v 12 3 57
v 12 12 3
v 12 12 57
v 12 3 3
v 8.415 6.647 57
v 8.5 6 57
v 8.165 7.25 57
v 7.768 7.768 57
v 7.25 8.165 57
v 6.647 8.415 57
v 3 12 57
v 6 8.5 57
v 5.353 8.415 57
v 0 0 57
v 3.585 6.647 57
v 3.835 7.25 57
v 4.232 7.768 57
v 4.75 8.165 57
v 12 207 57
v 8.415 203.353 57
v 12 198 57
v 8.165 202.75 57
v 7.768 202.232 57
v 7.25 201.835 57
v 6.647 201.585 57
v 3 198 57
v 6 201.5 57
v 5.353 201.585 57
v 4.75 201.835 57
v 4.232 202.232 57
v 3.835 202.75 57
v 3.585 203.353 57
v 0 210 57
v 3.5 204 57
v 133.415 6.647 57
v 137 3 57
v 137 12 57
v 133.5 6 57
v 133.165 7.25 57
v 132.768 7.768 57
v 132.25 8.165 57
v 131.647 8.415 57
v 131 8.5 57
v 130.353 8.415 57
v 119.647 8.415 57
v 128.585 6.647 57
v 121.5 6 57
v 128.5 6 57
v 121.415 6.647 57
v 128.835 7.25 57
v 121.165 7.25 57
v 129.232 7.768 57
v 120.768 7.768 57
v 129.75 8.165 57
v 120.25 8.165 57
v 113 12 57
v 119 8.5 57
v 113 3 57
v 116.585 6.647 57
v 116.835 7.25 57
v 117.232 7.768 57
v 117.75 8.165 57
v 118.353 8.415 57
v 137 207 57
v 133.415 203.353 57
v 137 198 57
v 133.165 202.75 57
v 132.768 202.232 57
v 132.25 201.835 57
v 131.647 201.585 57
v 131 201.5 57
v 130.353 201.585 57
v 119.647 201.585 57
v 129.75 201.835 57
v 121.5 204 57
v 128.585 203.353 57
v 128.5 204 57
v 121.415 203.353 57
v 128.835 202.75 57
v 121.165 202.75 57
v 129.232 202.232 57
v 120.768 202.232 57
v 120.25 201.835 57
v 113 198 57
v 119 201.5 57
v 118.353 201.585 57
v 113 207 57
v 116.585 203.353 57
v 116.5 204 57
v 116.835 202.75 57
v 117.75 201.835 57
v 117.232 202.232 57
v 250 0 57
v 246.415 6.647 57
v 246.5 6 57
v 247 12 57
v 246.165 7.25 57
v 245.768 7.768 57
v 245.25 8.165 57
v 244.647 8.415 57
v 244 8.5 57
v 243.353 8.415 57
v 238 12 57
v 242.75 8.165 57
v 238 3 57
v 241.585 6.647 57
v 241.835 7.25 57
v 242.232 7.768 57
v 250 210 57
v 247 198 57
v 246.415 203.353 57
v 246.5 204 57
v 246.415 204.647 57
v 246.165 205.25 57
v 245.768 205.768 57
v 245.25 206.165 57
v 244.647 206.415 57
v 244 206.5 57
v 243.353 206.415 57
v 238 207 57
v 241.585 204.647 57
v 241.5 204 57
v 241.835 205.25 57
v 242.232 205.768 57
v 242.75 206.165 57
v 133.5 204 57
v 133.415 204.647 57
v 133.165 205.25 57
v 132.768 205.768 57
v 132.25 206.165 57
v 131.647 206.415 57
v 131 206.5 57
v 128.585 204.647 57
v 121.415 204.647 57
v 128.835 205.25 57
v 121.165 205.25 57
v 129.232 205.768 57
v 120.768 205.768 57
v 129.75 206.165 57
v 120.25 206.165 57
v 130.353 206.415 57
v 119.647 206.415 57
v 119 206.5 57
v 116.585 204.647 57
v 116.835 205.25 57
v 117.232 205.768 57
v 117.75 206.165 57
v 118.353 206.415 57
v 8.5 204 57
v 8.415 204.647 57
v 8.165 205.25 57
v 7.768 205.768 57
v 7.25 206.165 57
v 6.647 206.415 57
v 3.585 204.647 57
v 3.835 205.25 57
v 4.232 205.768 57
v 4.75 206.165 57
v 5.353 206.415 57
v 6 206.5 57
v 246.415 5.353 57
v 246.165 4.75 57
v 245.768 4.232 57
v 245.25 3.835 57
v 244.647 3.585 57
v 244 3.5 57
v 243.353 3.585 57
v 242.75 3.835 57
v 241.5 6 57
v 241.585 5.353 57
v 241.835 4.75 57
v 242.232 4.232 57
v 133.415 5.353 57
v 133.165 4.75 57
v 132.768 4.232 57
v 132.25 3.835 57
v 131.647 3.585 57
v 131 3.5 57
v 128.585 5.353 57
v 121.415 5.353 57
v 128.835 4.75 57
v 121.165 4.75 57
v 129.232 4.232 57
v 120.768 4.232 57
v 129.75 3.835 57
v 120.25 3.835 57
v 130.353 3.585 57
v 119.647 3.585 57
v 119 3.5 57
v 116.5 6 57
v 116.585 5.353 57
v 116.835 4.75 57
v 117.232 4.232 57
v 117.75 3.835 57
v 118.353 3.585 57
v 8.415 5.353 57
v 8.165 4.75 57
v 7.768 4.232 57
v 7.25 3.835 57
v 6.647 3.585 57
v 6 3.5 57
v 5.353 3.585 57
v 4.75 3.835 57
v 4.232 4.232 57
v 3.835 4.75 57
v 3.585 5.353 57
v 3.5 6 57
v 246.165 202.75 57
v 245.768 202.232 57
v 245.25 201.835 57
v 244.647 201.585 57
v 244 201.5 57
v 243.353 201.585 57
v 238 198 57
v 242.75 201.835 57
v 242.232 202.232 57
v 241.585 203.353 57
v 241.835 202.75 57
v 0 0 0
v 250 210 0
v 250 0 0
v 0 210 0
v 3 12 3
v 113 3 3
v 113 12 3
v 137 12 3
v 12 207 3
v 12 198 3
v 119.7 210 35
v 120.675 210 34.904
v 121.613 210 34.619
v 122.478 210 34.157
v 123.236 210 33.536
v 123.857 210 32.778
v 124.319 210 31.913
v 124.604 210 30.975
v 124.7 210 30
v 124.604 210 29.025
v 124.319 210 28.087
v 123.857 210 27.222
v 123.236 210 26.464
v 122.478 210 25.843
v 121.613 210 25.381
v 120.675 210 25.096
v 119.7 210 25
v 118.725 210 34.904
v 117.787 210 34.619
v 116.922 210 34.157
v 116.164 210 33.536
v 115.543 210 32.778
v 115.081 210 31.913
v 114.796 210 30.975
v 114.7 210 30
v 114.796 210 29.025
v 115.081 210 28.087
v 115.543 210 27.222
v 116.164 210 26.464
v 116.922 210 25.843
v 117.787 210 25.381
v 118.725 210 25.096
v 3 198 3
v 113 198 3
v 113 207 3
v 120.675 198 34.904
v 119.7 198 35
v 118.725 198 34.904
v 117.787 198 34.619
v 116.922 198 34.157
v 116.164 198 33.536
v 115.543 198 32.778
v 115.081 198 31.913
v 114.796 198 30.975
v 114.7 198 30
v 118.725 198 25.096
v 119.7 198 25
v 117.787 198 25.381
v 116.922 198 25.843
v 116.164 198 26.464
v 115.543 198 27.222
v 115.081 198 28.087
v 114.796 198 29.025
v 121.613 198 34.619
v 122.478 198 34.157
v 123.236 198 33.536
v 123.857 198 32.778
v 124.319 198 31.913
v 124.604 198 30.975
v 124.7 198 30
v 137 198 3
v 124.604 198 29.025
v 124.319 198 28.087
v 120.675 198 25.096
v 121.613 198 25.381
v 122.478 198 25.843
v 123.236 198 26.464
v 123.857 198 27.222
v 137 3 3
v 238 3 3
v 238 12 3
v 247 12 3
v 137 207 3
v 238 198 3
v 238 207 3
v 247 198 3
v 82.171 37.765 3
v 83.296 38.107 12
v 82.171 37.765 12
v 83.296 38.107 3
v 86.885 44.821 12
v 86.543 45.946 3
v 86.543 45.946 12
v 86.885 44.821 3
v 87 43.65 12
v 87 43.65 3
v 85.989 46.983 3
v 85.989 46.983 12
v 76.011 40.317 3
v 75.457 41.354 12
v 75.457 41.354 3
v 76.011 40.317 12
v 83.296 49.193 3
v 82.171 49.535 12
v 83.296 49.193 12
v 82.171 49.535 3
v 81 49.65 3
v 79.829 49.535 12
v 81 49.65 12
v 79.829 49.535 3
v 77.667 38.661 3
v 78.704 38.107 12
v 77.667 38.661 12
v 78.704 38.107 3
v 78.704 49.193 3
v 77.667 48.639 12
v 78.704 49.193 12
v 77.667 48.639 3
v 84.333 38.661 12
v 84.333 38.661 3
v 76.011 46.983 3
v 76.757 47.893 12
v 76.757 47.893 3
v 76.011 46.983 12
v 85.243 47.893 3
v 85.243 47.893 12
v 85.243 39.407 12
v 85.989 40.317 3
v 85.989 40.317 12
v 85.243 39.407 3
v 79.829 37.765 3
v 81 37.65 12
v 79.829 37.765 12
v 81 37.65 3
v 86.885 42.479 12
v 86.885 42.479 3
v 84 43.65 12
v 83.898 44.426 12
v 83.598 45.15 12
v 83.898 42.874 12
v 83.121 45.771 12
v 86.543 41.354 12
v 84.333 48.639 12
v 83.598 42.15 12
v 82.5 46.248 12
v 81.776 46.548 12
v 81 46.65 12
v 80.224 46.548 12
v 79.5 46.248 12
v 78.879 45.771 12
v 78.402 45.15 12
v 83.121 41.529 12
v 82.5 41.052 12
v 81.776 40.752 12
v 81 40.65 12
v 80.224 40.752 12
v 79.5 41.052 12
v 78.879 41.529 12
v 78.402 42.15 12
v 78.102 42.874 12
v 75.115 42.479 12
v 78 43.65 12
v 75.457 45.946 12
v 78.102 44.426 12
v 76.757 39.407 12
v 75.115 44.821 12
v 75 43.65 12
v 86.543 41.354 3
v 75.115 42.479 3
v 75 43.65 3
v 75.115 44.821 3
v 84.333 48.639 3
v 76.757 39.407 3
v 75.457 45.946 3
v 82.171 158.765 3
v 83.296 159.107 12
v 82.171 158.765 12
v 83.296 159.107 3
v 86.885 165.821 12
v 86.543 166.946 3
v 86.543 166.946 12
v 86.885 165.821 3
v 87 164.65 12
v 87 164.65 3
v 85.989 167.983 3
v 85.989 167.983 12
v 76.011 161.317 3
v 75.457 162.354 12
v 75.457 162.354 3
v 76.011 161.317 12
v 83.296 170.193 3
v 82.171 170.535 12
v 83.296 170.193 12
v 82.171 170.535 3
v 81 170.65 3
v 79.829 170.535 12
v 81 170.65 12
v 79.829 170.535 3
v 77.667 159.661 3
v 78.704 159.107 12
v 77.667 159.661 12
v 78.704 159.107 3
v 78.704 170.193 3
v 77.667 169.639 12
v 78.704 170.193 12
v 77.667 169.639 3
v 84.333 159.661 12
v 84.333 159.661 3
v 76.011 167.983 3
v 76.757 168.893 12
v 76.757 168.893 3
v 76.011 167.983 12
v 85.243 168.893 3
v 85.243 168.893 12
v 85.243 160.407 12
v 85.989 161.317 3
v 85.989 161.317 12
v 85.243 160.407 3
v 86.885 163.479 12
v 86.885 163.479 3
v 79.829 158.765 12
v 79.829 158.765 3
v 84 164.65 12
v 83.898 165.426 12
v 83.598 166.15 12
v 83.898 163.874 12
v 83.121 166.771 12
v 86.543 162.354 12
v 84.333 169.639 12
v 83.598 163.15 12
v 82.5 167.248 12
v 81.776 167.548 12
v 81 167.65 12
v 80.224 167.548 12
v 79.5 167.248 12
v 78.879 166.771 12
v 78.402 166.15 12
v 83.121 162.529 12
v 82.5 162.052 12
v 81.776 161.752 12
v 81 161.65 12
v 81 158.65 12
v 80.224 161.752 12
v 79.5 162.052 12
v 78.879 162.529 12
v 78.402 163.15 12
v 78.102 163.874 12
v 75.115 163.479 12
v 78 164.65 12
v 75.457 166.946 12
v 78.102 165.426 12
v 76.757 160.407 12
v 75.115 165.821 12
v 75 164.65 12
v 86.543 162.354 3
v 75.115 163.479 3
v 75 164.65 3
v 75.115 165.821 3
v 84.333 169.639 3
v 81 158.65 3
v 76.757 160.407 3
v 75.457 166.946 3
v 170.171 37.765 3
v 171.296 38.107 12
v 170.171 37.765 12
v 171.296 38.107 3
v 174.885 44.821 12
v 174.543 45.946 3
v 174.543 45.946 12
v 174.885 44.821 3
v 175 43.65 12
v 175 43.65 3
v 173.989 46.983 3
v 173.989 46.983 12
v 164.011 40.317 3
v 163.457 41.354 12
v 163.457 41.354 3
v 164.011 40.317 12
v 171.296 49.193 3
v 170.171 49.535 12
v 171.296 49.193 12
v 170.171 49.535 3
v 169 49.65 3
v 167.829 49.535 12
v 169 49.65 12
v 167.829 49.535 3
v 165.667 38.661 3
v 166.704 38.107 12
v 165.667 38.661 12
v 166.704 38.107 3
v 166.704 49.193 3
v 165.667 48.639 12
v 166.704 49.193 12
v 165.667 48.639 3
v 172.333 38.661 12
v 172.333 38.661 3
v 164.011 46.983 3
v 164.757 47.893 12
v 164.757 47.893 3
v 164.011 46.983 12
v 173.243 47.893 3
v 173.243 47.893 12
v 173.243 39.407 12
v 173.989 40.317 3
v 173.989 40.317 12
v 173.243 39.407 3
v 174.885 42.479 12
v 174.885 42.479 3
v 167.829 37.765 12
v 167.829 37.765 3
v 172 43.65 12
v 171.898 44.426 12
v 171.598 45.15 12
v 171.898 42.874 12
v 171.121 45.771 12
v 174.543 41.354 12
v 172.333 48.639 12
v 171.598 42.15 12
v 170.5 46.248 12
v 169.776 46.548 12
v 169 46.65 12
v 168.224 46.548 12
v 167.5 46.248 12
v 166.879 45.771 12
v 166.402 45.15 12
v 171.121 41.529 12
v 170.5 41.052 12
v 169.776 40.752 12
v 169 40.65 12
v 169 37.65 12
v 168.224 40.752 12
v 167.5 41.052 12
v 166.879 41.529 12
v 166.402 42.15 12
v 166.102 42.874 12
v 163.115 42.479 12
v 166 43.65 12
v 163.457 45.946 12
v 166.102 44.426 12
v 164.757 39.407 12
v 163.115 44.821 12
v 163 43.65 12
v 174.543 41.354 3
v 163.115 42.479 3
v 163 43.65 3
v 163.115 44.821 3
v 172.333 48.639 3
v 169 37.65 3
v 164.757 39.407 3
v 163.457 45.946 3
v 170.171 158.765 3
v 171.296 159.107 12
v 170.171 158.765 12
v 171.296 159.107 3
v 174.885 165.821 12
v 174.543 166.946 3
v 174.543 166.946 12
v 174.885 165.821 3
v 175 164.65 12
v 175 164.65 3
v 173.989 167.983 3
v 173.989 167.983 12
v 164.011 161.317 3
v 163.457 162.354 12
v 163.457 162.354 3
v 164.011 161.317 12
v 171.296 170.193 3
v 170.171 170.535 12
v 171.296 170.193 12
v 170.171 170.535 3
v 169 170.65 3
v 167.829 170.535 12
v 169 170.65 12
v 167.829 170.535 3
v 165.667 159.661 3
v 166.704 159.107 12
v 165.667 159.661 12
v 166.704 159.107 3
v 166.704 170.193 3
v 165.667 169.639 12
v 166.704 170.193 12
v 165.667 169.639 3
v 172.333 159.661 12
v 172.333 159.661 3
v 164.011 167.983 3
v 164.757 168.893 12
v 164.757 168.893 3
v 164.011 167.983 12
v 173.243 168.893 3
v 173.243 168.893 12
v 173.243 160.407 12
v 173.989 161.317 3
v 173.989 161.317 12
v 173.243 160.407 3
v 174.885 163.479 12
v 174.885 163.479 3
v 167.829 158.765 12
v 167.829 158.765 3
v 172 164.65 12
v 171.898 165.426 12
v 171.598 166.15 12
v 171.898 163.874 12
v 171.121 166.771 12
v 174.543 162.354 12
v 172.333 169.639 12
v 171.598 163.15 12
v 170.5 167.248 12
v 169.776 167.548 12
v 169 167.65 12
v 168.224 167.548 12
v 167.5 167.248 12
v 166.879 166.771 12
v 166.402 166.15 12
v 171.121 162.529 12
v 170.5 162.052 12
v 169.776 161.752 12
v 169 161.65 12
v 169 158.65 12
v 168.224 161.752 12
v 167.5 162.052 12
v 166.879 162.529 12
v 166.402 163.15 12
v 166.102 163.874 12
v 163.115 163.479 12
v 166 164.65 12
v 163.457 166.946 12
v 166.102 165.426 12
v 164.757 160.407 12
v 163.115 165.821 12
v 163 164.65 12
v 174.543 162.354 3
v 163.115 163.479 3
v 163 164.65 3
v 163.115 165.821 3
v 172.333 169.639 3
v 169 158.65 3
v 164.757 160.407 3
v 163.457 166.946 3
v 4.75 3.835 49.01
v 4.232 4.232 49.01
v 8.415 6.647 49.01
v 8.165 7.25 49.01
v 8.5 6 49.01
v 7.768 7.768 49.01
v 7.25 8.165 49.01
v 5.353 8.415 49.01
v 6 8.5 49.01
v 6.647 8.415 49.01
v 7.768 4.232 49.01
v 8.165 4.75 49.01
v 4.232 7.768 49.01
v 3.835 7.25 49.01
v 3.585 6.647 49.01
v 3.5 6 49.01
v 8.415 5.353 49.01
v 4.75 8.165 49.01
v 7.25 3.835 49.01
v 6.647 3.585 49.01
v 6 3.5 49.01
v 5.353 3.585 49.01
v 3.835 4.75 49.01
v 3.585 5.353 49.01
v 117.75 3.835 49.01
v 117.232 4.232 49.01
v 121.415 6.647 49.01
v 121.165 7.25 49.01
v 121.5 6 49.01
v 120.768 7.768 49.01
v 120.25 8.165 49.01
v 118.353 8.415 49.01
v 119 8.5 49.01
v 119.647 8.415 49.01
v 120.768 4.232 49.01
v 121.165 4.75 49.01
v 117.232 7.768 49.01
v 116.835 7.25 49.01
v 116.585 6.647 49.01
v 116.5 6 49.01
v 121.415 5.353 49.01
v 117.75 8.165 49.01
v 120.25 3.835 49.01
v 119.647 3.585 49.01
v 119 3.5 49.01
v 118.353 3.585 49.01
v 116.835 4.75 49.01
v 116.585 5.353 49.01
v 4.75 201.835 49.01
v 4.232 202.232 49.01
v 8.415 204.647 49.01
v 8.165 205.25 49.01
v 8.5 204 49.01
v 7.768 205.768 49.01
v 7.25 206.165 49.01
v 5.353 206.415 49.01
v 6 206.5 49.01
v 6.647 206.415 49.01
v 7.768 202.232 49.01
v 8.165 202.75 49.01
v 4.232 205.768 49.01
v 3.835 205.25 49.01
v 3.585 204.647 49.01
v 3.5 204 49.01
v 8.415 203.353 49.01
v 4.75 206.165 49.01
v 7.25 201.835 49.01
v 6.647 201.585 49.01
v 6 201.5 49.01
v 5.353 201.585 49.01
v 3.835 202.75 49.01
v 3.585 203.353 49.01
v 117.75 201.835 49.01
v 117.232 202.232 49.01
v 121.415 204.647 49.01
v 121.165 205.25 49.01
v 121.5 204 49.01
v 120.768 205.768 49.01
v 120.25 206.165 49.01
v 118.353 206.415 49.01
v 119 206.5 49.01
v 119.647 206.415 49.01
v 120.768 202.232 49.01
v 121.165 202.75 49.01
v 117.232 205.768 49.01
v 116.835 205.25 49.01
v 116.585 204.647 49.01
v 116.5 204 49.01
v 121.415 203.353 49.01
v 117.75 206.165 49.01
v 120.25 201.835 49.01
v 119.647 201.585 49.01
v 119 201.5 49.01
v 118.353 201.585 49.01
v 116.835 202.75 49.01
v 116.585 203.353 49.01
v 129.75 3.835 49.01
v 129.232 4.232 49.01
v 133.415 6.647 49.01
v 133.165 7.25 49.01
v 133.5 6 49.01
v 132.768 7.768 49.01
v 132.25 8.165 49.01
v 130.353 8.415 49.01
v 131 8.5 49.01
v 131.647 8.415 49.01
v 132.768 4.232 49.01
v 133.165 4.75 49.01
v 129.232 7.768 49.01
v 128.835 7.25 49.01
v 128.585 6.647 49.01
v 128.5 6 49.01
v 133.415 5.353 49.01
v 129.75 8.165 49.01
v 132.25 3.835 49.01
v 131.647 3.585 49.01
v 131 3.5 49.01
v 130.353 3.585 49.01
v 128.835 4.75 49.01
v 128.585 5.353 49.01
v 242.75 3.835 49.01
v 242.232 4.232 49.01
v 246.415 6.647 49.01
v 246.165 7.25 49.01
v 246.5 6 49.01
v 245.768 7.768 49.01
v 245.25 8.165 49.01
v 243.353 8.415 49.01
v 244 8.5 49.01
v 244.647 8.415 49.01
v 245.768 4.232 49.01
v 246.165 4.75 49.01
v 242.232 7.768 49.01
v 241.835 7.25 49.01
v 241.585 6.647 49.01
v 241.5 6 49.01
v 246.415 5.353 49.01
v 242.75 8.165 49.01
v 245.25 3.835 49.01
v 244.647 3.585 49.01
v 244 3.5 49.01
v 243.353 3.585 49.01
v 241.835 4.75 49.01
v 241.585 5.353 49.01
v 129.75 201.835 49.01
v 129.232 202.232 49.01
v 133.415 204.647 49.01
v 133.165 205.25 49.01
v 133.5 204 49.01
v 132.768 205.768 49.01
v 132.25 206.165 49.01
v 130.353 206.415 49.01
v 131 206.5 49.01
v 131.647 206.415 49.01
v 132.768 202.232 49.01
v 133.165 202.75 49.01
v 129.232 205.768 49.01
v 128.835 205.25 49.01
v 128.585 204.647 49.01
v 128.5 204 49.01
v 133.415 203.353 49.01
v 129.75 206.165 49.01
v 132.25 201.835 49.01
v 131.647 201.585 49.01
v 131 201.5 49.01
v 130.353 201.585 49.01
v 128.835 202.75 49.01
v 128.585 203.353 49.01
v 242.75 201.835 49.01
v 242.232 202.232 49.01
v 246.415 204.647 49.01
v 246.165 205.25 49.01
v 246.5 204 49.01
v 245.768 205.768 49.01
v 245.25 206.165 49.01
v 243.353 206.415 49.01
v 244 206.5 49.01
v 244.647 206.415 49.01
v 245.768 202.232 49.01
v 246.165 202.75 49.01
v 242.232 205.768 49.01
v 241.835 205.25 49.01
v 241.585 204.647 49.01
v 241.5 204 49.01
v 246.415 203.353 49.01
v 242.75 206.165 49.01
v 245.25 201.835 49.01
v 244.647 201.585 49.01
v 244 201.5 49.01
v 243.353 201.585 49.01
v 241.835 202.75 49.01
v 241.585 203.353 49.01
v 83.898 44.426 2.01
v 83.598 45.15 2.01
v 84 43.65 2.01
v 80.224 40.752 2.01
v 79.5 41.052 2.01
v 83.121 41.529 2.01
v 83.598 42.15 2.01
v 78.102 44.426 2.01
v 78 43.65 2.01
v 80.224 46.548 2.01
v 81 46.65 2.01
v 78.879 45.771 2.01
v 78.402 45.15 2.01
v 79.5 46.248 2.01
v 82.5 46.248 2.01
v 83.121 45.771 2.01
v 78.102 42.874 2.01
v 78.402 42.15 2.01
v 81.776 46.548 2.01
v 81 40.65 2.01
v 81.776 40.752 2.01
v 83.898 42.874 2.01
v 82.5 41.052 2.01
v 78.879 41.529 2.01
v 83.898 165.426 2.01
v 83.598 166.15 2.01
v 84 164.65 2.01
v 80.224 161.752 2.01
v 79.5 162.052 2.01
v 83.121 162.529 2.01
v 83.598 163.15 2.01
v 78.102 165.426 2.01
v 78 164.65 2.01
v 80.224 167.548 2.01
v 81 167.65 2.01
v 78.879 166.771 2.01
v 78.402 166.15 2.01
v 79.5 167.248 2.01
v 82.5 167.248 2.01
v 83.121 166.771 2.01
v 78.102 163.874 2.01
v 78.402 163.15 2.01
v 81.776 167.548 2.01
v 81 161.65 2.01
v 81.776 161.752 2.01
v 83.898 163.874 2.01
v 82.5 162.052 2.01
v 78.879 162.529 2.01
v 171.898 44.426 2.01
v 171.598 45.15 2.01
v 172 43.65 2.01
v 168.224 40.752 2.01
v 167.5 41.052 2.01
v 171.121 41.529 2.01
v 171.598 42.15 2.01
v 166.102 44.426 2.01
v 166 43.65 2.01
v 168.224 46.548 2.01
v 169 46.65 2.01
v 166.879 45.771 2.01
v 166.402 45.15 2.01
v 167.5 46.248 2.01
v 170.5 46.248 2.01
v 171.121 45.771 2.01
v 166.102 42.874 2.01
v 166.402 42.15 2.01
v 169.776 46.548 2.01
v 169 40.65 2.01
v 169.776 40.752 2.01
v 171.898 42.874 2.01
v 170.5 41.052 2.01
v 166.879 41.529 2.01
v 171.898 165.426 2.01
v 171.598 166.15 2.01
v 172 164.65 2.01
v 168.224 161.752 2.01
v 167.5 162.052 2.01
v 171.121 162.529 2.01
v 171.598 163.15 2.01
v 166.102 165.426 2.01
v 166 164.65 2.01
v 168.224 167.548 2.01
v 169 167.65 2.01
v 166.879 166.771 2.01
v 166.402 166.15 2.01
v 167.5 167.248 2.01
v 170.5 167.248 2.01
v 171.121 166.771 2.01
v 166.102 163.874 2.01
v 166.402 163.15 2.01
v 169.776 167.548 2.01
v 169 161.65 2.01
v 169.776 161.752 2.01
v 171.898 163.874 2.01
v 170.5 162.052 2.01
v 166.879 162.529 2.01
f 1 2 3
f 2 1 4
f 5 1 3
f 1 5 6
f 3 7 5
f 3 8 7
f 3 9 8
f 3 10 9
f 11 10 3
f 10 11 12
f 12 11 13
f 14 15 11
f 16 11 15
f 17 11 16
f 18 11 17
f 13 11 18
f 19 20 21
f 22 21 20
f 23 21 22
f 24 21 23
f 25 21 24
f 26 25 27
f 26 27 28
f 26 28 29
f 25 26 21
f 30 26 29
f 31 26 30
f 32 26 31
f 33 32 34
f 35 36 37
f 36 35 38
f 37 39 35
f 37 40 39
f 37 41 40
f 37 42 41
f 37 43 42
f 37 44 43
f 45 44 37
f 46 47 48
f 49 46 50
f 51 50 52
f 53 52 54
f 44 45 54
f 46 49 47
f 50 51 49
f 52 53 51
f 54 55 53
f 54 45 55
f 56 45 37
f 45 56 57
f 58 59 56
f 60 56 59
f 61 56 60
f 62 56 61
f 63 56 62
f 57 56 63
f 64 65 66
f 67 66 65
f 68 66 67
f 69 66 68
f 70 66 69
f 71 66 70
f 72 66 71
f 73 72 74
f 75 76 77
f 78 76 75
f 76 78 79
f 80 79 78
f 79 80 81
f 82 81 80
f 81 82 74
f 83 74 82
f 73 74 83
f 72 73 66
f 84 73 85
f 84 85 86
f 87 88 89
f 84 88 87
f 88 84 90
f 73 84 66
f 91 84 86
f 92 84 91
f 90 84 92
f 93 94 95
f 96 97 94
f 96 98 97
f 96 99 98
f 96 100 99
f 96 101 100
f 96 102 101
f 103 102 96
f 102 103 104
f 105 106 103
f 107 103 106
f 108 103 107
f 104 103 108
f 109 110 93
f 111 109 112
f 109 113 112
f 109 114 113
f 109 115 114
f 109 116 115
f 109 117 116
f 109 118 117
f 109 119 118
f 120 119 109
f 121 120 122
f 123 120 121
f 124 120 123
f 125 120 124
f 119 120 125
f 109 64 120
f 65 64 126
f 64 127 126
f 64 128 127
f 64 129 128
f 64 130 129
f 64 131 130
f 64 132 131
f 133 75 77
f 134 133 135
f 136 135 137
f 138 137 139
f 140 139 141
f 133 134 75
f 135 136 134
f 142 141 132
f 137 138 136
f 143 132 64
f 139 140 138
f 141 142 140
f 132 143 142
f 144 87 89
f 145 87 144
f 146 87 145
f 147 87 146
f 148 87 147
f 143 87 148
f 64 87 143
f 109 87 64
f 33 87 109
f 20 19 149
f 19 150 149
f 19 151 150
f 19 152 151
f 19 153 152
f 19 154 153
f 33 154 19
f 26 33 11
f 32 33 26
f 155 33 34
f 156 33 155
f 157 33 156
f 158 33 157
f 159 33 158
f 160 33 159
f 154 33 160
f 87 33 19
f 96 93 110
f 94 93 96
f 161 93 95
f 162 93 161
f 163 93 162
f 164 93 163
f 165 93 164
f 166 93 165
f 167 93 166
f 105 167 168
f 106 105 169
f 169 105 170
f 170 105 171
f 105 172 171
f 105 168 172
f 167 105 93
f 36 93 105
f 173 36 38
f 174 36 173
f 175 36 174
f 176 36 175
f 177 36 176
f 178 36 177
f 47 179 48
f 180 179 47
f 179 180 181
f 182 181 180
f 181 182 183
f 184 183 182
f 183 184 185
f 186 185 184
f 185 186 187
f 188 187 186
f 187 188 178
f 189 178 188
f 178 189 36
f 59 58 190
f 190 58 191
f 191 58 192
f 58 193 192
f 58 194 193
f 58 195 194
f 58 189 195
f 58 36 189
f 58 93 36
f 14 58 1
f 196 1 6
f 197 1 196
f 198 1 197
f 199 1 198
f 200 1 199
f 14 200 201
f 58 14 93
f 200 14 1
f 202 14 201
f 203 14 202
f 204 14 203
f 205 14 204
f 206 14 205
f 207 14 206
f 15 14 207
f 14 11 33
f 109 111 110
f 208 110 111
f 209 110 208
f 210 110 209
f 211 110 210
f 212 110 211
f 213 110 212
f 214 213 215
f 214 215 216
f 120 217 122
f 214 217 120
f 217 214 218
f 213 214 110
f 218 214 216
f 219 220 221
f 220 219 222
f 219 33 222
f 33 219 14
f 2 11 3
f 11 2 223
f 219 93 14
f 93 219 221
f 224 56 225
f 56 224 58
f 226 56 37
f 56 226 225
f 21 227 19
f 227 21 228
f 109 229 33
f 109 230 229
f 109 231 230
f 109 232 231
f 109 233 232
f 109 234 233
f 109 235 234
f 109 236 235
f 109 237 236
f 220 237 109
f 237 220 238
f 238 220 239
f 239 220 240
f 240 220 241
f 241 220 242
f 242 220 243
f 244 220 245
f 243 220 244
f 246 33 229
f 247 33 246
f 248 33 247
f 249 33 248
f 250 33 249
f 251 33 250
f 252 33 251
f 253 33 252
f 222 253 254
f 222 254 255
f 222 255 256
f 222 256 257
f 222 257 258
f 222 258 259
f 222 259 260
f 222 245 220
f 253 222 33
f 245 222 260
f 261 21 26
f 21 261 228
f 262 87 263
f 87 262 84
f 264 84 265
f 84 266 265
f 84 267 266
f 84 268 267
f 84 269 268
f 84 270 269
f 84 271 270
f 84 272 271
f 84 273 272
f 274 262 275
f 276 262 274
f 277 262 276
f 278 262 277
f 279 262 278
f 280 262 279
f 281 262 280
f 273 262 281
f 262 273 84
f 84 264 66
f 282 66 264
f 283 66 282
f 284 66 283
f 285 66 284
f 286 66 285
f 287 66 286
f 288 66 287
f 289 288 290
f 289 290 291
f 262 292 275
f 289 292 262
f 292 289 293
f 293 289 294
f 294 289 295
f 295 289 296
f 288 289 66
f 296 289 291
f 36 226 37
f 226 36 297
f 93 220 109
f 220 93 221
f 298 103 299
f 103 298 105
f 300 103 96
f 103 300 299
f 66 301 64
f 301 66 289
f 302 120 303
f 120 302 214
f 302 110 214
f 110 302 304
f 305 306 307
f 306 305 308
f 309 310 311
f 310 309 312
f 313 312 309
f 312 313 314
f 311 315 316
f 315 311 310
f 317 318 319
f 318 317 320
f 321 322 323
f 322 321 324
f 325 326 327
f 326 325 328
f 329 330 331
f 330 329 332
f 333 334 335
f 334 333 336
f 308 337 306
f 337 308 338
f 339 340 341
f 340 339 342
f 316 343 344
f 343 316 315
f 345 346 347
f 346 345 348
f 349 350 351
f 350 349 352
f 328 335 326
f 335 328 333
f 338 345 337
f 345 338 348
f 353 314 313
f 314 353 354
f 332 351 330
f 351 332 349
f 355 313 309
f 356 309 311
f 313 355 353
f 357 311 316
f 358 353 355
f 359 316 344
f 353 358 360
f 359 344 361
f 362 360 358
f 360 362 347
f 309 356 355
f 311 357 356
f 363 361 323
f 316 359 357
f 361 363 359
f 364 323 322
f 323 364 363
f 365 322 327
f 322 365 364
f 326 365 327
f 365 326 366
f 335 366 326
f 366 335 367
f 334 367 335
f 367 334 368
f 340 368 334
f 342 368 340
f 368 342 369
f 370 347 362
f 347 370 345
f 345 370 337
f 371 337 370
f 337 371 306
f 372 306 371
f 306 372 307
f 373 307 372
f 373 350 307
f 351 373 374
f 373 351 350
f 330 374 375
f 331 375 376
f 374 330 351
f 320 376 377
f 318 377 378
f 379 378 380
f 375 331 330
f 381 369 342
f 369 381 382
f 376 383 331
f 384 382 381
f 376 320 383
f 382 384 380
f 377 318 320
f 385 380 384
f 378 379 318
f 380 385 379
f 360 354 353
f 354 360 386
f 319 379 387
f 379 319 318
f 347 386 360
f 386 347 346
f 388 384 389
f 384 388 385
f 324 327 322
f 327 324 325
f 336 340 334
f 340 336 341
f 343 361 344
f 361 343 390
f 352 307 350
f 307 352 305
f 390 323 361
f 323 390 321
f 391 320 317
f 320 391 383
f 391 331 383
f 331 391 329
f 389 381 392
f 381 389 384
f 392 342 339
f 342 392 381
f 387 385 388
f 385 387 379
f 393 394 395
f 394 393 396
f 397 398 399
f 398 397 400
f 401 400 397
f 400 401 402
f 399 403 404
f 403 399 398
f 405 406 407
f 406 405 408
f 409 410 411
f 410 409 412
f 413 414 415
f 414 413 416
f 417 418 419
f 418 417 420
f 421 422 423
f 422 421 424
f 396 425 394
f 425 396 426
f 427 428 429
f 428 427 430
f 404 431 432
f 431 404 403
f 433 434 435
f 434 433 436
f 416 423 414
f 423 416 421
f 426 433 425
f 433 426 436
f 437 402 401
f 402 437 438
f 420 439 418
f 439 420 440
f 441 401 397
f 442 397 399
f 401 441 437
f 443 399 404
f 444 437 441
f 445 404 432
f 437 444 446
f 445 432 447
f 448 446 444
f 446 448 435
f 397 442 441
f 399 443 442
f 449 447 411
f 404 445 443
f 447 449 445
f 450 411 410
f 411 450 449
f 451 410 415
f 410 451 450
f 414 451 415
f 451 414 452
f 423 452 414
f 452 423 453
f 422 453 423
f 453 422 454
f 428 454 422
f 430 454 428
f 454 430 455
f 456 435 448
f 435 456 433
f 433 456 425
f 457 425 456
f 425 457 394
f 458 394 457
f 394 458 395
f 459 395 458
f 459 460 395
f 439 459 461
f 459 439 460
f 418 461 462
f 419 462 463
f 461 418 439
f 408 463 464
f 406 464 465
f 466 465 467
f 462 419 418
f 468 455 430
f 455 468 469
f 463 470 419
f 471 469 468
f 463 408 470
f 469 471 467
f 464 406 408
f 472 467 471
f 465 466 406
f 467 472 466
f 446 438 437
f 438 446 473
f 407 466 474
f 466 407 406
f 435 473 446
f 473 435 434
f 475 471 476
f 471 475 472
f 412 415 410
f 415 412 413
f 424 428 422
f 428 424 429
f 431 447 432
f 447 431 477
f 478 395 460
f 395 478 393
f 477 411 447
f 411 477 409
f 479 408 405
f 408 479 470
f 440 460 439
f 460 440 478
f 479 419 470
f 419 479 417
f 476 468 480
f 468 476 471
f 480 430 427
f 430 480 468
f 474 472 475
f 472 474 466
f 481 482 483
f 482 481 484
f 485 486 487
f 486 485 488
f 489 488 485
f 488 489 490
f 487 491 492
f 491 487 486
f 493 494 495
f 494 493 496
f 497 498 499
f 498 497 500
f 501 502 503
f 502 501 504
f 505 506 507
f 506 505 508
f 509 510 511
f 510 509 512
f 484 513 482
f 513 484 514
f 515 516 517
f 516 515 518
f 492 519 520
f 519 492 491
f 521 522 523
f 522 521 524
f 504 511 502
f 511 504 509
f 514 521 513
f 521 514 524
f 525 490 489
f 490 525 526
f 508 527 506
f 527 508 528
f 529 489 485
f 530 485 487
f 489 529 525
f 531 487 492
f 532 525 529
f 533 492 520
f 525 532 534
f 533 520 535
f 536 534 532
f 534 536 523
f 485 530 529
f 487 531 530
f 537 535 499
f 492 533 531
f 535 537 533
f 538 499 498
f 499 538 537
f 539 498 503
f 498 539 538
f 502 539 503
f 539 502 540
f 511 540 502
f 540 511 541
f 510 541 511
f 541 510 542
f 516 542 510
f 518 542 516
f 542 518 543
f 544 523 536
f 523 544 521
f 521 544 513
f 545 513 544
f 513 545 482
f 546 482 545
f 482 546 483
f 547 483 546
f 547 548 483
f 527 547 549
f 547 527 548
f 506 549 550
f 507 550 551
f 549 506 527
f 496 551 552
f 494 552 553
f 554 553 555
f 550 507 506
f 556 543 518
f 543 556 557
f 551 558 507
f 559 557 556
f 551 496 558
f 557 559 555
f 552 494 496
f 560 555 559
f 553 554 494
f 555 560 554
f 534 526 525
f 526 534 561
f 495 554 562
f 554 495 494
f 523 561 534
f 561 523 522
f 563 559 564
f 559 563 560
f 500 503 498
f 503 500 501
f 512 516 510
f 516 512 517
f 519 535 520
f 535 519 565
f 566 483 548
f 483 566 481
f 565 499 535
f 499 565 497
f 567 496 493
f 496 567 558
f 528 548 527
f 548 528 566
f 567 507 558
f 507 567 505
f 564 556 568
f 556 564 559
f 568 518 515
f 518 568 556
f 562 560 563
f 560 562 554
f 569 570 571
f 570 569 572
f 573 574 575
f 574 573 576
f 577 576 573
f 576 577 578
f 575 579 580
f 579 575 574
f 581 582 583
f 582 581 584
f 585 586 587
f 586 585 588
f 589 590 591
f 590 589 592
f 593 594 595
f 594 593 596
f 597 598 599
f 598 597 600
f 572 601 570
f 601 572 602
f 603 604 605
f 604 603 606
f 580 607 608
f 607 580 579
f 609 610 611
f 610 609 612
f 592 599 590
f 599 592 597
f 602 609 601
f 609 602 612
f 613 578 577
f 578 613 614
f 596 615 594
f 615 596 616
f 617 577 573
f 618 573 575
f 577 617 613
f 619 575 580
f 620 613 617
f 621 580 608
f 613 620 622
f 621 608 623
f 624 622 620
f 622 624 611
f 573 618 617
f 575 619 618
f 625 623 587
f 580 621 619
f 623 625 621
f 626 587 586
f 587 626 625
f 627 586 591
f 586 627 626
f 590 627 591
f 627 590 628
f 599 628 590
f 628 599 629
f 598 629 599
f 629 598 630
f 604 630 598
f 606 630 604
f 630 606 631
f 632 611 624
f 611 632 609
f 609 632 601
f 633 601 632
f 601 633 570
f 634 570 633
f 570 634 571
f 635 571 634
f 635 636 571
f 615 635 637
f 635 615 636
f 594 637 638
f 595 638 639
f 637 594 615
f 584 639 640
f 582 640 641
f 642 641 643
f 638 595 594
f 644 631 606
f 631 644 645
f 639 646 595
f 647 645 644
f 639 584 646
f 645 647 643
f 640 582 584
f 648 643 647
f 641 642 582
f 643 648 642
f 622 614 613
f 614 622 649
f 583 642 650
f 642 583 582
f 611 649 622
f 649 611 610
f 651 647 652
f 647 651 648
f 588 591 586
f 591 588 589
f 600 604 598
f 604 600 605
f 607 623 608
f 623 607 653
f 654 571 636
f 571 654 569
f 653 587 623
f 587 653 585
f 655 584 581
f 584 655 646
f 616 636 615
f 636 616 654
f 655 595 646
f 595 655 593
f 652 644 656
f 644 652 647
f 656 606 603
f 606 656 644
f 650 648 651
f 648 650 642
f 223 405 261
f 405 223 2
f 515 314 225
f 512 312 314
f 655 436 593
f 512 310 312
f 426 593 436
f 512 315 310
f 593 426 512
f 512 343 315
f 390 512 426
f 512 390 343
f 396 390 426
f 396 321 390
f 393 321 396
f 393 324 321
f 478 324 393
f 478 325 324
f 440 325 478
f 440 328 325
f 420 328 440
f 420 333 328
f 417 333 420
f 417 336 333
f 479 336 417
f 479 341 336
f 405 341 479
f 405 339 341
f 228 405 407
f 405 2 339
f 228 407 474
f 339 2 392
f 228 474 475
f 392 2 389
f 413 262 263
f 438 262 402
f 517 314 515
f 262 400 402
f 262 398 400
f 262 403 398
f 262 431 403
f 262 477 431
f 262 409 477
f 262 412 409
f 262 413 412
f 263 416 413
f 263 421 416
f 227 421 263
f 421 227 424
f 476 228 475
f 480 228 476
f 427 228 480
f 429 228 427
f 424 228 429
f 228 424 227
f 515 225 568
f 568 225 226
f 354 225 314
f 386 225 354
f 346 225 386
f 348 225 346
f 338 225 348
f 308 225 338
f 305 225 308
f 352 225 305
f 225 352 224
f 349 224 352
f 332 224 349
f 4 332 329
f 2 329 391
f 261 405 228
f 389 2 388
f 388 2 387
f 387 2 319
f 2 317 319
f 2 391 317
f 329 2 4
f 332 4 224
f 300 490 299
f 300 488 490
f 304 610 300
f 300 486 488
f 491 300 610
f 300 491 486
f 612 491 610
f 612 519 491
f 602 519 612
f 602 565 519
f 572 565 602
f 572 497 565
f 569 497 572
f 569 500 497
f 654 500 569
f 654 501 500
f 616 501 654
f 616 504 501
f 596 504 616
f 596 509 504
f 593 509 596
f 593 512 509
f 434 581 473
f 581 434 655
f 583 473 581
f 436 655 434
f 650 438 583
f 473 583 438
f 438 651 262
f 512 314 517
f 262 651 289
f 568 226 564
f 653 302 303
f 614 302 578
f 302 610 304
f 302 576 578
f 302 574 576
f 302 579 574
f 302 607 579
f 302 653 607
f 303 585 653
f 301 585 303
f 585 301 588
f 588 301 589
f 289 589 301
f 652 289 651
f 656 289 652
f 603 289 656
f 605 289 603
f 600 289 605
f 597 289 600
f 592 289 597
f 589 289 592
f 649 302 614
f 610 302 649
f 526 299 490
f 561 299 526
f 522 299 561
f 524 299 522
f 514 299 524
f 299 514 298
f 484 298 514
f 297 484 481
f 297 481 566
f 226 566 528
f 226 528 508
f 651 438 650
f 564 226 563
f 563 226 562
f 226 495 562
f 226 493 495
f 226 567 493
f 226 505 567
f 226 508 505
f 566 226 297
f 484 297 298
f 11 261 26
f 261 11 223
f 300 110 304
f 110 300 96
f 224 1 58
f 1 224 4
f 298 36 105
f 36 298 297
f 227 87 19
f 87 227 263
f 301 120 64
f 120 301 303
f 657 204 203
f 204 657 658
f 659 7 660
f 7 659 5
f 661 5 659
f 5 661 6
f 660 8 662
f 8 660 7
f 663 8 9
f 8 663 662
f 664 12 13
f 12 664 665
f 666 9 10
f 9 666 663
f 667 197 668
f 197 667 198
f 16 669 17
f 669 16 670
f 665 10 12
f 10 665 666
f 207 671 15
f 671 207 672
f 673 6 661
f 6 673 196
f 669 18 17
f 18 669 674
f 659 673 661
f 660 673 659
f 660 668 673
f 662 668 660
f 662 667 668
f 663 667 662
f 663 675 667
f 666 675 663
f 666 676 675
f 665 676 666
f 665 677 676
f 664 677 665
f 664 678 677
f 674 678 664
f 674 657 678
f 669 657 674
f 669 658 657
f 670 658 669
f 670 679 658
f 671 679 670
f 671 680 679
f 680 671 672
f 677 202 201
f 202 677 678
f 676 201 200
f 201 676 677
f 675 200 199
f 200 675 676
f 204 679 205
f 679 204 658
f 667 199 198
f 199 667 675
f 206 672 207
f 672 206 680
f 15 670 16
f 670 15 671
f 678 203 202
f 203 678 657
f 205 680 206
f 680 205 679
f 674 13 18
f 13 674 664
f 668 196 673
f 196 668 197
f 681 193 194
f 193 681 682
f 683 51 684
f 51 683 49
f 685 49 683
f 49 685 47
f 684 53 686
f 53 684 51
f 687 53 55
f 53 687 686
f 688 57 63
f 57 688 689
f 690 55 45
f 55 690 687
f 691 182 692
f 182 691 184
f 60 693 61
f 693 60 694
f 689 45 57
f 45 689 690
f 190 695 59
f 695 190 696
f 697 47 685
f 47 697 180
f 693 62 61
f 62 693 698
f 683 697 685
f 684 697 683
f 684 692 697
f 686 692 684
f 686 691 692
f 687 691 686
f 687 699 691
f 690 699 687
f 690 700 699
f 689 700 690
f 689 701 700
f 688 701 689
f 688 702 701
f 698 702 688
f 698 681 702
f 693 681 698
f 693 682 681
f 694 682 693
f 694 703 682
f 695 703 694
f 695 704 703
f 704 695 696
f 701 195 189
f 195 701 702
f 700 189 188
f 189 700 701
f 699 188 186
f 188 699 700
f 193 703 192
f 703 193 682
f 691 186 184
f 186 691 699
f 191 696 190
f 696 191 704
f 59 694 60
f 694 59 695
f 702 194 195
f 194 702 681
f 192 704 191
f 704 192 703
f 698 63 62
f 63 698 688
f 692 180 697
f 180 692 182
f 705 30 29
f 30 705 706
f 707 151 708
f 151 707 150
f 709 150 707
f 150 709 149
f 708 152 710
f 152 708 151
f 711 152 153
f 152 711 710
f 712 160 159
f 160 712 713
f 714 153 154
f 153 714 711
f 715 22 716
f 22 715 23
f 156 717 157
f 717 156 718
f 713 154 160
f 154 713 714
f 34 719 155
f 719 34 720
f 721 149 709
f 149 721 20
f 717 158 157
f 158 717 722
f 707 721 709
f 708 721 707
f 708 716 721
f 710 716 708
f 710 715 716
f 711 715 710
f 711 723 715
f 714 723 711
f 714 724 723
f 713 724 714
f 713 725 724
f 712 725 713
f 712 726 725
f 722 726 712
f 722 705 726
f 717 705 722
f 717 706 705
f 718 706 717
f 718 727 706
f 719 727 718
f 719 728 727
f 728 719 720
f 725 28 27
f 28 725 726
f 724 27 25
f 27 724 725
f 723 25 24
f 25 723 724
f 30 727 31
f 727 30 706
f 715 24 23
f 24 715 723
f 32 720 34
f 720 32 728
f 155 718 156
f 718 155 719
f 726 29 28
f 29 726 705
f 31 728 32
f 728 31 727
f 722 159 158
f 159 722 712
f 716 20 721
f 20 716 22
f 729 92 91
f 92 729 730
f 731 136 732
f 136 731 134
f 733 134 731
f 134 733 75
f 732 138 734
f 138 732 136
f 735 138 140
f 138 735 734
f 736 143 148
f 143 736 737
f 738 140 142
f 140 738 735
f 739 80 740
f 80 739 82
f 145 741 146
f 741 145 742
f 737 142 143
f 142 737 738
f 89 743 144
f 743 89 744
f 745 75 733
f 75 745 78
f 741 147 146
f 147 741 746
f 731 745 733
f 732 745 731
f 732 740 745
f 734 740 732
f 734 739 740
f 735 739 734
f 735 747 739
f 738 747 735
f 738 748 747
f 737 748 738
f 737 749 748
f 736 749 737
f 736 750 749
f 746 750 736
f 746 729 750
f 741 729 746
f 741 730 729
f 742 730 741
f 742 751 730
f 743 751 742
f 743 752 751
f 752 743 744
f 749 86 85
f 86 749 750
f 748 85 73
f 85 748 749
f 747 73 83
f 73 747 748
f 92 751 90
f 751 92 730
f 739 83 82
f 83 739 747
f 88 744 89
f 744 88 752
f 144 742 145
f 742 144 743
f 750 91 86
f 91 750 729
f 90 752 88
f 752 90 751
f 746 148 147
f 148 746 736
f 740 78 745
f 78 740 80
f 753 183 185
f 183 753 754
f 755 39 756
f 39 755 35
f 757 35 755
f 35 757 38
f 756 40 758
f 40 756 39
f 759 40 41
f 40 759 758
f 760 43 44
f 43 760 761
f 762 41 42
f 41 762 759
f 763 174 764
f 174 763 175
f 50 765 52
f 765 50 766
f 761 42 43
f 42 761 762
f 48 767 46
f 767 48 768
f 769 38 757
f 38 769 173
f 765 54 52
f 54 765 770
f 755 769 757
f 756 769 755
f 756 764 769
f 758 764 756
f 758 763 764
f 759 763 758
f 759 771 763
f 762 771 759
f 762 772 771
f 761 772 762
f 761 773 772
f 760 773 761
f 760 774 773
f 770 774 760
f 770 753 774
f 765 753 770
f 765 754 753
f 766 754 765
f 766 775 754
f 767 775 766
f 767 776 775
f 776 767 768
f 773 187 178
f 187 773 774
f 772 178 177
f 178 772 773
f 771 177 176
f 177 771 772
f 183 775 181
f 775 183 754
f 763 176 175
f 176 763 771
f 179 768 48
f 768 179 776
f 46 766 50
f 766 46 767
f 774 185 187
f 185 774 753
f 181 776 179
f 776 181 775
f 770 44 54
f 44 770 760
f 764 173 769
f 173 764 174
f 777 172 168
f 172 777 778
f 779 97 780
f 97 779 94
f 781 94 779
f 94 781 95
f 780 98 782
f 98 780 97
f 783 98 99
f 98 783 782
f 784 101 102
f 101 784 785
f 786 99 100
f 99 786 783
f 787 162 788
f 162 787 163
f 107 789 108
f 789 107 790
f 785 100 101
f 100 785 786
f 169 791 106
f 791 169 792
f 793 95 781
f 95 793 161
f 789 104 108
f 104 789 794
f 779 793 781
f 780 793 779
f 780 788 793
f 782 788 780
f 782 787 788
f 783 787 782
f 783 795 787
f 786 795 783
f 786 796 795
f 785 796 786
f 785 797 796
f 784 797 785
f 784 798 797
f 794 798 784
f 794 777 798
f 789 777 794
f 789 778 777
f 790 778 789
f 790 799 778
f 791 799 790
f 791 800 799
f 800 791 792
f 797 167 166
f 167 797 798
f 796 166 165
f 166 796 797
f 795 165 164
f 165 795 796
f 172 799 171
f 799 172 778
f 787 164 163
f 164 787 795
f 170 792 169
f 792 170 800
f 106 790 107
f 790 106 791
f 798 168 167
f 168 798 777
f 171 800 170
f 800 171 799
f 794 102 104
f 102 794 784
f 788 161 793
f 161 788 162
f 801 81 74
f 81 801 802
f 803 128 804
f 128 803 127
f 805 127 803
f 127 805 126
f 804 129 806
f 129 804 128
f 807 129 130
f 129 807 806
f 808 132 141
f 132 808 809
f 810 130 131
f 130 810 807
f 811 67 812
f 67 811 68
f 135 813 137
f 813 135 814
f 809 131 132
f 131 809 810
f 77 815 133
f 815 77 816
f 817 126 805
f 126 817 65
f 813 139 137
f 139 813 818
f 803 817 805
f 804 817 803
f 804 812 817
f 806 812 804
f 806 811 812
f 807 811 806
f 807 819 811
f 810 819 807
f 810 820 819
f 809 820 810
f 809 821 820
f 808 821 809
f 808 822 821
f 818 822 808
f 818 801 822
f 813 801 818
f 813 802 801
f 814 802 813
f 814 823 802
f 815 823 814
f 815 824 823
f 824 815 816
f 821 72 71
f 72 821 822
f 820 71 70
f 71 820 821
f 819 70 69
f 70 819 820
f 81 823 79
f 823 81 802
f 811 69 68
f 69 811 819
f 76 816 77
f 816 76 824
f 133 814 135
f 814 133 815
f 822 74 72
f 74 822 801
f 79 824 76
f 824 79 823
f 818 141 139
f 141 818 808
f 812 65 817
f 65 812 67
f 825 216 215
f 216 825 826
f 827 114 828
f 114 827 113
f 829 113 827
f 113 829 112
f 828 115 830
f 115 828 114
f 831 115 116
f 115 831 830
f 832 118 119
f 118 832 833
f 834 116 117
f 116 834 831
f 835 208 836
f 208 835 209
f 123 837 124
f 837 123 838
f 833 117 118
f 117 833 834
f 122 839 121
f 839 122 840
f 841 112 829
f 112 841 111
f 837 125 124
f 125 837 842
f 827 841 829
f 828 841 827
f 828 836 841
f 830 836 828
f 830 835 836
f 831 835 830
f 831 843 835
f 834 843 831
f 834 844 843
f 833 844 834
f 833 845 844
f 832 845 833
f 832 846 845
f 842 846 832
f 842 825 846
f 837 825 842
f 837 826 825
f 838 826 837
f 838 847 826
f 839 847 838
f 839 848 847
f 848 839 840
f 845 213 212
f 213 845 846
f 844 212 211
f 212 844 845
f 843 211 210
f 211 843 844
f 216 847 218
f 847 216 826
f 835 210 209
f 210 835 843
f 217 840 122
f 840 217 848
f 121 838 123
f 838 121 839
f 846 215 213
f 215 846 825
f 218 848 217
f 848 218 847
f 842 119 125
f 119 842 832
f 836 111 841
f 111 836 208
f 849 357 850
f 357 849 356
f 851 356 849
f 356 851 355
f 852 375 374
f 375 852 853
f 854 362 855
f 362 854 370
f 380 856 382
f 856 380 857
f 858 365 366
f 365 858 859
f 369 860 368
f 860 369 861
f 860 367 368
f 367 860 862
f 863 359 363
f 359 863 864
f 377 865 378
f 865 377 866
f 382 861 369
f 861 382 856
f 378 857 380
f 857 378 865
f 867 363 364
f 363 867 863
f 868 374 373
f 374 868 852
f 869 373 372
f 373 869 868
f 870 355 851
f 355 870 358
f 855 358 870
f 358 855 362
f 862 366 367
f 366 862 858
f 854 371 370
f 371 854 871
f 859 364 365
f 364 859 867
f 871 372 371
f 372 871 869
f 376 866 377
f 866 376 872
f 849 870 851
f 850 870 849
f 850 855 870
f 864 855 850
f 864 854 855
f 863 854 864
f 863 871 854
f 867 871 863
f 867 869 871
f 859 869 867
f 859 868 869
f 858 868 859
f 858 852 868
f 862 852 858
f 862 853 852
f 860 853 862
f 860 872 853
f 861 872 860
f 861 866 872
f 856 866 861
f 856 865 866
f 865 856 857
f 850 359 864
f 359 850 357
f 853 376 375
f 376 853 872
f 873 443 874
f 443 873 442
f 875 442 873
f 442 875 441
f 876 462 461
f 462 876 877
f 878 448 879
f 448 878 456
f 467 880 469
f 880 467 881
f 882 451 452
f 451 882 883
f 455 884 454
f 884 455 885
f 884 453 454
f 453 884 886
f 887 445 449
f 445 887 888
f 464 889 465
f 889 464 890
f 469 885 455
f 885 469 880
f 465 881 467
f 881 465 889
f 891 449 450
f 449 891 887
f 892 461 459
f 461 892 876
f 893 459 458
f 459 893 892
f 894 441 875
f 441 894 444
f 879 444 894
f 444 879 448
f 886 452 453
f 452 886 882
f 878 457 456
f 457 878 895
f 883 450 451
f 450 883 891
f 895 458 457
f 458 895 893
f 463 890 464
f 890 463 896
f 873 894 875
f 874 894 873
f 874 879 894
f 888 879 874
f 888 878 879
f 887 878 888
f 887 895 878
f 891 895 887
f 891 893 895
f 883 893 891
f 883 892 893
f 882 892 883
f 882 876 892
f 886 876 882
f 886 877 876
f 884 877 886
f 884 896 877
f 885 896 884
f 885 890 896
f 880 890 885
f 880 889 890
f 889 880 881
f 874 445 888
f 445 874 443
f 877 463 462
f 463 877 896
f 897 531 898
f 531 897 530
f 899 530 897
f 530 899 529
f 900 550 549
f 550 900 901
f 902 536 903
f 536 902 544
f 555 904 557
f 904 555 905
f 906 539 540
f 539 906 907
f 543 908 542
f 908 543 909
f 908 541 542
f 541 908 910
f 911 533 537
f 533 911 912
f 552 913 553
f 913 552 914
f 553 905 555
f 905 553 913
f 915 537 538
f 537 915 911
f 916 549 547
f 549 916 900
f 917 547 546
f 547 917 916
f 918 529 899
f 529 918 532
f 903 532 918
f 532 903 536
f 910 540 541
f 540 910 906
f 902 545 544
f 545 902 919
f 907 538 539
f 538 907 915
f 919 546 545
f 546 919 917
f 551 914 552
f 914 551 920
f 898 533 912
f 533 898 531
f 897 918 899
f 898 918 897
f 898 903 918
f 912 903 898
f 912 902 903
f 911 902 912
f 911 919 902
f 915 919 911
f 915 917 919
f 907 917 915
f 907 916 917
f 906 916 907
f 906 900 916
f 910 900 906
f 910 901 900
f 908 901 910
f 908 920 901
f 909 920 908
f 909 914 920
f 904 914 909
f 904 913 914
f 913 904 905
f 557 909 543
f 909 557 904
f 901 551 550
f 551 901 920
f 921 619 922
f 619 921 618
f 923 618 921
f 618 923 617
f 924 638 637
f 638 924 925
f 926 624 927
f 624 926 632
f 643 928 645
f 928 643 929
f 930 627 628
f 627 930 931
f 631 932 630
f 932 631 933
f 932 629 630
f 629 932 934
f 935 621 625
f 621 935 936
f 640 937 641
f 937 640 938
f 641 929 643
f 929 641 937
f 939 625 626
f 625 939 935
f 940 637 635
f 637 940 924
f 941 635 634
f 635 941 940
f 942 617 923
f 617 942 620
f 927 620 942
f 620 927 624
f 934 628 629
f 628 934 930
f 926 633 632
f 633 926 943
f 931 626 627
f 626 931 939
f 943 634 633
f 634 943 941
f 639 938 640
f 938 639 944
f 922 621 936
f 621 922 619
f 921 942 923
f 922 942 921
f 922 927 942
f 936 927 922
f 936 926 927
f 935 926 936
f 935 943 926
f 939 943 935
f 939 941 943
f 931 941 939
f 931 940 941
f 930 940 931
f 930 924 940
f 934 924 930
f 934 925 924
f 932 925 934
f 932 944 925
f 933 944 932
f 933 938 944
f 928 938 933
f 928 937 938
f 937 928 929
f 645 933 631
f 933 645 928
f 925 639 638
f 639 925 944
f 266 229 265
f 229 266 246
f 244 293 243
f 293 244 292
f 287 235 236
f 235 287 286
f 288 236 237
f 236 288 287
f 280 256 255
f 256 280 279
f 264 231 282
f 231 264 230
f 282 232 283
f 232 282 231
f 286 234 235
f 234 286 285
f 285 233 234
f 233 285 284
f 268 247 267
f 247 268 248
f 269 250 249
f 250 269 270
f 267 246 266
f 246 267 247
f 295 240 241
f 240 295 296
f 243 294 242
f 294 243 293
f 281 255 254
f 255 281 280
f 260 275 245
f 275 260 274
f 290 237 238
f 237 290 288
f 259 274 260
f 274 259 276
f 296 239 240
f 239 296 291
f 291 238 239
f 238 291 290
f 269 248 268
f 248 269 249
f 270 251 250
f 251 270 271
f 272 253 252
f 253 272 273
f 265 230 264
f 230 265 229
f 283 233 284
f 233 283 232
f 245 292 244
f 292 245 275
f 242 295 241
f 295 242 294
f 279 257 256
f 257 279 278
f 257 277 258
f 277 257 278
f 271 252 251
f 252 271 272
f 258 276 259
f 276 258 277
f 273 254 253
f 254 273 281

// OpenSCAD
// Single-piece outer case for the ODJ controller.
//
// Supersedes case_half.scad now that a Voron with a 350 × 350 bed
// can print the whole shell in one go. The two faceplates from
// faceplate_deck.scad bolt onto the top of this part unchanged —
// the 8 corner pilot holes here line up with the 4+4 mount holes
// the user already drilled in those faceplates.
//
// Assembled top-down view:
//
//   +------+-----+--+-----+------+
//   |  ●   |  ●  ‖  ●  |   ●    |   ← faceplate mount pilots (×8)
//   |      |     ‖     |        |
//   |  faceplate A | faceplate B |
//   |      |     ‖     |        |
//   |  ●   |  ●  ‖  ●  |   ●    |
//   +------+-----+--+-----+------+
//        125 mm         125 mm
//        ← left ─→     ← right →
//
// The two inner "seam" pillars (at X = 119 and X = 131) used to
// be separate halves' inner posts. They're now adjacent solid
// pillars in one shell — touching faces union seamlessly so the
// 24 × 12 footprint reads as a single block in the print.
//
// Print orientation: floor on the build plate (Z up). No supports
// needed — the cavity opens onto the top, and the corner posts
// stand free.
//
// PCB still straddles the case along Y. Mount posts are M5 self-tap
// into the bare plastic (no inserts).

// ====================================================================
// Parameters
// ====================================================================

case_w      = 250;     // X — two 125 mm faceplates side by side
case_l      = 210;     // Y
case_h      = 60;      // Z, total assembled height including faceplate
wall_t      = 3;       // outer wall thickness
floor_t     = 3;       // floor thickness
faceplate_t = 3;       // faceplate sits IN a top recess; informational

// --- Corner posts (carry the 8 faceplate pilots) ---
post_size   = 12;
post_h      = case_h - faceplate_t;

// --- Faceplate corner screw mounts (mirror faceplate_deck.scad) ---
// M3 brass heat-set insert: melt-in OD 5.5 mm, depth 8 mm. Hole drawn
// 0.5 mm under that so the insert has plastic to displace.
fp_corner_inset = 6;
fp_pilot_d      = 5;
fp_pilot_depth  = 8;

// Faceplate mount-hole XY positions (case coords). Two faceplates of
// 125 × 210 sit at (0..125) and (125..250). Each has a hole 6 mm in
// from each of its corners.
fp_holes = [
    // Left faceplate
    [fp_corner_inset,                       fp_corner_inset],
    [125 - fp_corner_inset,                 fp_corner_inset],
    [fp_corner_inset,                       case_l - fp_corner_inset],
    [125 - fp_corner_inset,                 case_l - fp_corner_inset],
    // Right faceplate
    [125 + fp_corner_inset,                 fp_corner_inset],
    [case_w - fp_corner_inset,              fp_corner_inset],
    [125 + fp_corner_inset,                 case_l - fp_corner_inset],
    [case_w - fp_corner_inset,              case_l - fp_corner_inset],
];

// --- PCB mounts ---
// One PCB straddles the case. 4 mount posts, M5 self-tap into the
// post top (no heat-set — the lightweight PCB doesn't need it).
pcb_z         = 12;
pcb_post_dia  = 12;
pcb_pilot_d   = 6;       // target insert OD 6.5
pcb_pilot_depth = 10;

// PCB-coord X = 30 / Y = (30, 151) in the original two-half layout.
// In assembled coords that puts the four mount posts at:
pcb_posts = [
    [81,            43.65],
    [81,            164.65],
    [case_w - 81,   43.65],   // 169
    [case_w - 81,   164.65],
];

// --- USB cable cutout (BACK wall) ---
// At X = 119.7 = aligned with the Pico USB connector. In the old
// half design this position was right at the seam between two
// pillars and only had to punch through the back wall (≈3.5 mm).
// In the single-piece case there is now a SOLID corner post at
// X = 113..125 directly behind the wall — it carries the inner-
// back faceplate pilot at (119, 204). So the cutout has to reach
// THROUGH that post (12 mm deep) too, or the cable hits plastic.
usb_at_back   = true;
usb_d         = 10;
usb_x         = 119.7;
usb_center_z  = pcb_z + 18;
usb_punch_len = wall_t + post_size + 1;  // 16 mm: wall + post + slop

// ====================================================================
// Helpers
// ====================================================================

EPS = 0.01;

module corner_post(cx, cy) {
    translate([cx - post_size/2, cy - post_size/2, 0])
        cube([post_size, post_size, post_h]);
}

module fp_pilot(cx, cy) {
    translate([cx, cy, post_h - fp_pilot_depth + EPS])
        cylinder(d = fp_pilot_d, h = fp_pilot_depth, $fn = 24);
}

module pcb_post(cx, cy) {
    translate([cx, cy, 0])
        cylinder(d = pcb_post_dia, h = pcb_z, $fn = 32);
}

module pcb_pilot(cx, cy) {
    translate([cx, cy, pcb_z - pcb_pilot_depth + EPS])
        cylinder(d = pcb_pilot_d, h = pcb_pilot_depth, $fn = 24);
}

// ====================================================================
// Build
// ====================================================================

module case() {
    difference() {
        union() {
            // Floor.
            cube([case_w, case_l, floor_t]);
            // Four outer walls.
            cube([wall_t, case_l, post_h]);                                     // X = 0
            translate([case_w - wall_t, 0, 0])
                cube([wall_t, case_l, post_h]);                                 // X = case_w
            cube([case_w, wall_t, post_h]);                                     // Y = 0
            translate([0, case_l - wall_t, 0])
                cube([case_w, wall_t, post_h]);                                 // Y = case_l
            // 8 corner posts under the 8 faceplate pilots. The two
            // pairs along X = 119 / X = 131 touch at X = 125; OpenSCAD
            // unions them into a single 24 × 12 block.
            for (p = fp_holes) corner_post(p[0], p[1]);
            // PCB mount bosses.
            for (p = pcb_posts) pcb_post(p[0], p[1]);
        }

        // ---- Faceplate corner pilot holes (×8) ----
        for (p = fp_holes) fp_pilot(p[0], p[1]);

        // ---- PCB self-tap pilots ----
        for (p = pcb_posts) pcb_pilot(p[0], p[1]);

        // ---- USB cable cutout (back wall + inner pillar) ----
        // Cylinder lies along Y, starts a sliver outside the back
        // wall and grows inward by usb_punch_len so it clears both
        // the wall AND the corner pillar that sits behind it.
        if (usb_at_back) {
            translate([usb_x, case_l + EPS, usb_center_z])
                rotate([90, 0, 0])
                    cylinder(d = usb_d, h = usb_punch_len, $fn = 32);
        } else {
            translate([usb_x, -EPS, usb_center_z])
                rotate([-90, 0, 0])
                    cylinder(d = usb_d, h = usb_punch_len, $fn = 32);
        }
    }
}

case();
